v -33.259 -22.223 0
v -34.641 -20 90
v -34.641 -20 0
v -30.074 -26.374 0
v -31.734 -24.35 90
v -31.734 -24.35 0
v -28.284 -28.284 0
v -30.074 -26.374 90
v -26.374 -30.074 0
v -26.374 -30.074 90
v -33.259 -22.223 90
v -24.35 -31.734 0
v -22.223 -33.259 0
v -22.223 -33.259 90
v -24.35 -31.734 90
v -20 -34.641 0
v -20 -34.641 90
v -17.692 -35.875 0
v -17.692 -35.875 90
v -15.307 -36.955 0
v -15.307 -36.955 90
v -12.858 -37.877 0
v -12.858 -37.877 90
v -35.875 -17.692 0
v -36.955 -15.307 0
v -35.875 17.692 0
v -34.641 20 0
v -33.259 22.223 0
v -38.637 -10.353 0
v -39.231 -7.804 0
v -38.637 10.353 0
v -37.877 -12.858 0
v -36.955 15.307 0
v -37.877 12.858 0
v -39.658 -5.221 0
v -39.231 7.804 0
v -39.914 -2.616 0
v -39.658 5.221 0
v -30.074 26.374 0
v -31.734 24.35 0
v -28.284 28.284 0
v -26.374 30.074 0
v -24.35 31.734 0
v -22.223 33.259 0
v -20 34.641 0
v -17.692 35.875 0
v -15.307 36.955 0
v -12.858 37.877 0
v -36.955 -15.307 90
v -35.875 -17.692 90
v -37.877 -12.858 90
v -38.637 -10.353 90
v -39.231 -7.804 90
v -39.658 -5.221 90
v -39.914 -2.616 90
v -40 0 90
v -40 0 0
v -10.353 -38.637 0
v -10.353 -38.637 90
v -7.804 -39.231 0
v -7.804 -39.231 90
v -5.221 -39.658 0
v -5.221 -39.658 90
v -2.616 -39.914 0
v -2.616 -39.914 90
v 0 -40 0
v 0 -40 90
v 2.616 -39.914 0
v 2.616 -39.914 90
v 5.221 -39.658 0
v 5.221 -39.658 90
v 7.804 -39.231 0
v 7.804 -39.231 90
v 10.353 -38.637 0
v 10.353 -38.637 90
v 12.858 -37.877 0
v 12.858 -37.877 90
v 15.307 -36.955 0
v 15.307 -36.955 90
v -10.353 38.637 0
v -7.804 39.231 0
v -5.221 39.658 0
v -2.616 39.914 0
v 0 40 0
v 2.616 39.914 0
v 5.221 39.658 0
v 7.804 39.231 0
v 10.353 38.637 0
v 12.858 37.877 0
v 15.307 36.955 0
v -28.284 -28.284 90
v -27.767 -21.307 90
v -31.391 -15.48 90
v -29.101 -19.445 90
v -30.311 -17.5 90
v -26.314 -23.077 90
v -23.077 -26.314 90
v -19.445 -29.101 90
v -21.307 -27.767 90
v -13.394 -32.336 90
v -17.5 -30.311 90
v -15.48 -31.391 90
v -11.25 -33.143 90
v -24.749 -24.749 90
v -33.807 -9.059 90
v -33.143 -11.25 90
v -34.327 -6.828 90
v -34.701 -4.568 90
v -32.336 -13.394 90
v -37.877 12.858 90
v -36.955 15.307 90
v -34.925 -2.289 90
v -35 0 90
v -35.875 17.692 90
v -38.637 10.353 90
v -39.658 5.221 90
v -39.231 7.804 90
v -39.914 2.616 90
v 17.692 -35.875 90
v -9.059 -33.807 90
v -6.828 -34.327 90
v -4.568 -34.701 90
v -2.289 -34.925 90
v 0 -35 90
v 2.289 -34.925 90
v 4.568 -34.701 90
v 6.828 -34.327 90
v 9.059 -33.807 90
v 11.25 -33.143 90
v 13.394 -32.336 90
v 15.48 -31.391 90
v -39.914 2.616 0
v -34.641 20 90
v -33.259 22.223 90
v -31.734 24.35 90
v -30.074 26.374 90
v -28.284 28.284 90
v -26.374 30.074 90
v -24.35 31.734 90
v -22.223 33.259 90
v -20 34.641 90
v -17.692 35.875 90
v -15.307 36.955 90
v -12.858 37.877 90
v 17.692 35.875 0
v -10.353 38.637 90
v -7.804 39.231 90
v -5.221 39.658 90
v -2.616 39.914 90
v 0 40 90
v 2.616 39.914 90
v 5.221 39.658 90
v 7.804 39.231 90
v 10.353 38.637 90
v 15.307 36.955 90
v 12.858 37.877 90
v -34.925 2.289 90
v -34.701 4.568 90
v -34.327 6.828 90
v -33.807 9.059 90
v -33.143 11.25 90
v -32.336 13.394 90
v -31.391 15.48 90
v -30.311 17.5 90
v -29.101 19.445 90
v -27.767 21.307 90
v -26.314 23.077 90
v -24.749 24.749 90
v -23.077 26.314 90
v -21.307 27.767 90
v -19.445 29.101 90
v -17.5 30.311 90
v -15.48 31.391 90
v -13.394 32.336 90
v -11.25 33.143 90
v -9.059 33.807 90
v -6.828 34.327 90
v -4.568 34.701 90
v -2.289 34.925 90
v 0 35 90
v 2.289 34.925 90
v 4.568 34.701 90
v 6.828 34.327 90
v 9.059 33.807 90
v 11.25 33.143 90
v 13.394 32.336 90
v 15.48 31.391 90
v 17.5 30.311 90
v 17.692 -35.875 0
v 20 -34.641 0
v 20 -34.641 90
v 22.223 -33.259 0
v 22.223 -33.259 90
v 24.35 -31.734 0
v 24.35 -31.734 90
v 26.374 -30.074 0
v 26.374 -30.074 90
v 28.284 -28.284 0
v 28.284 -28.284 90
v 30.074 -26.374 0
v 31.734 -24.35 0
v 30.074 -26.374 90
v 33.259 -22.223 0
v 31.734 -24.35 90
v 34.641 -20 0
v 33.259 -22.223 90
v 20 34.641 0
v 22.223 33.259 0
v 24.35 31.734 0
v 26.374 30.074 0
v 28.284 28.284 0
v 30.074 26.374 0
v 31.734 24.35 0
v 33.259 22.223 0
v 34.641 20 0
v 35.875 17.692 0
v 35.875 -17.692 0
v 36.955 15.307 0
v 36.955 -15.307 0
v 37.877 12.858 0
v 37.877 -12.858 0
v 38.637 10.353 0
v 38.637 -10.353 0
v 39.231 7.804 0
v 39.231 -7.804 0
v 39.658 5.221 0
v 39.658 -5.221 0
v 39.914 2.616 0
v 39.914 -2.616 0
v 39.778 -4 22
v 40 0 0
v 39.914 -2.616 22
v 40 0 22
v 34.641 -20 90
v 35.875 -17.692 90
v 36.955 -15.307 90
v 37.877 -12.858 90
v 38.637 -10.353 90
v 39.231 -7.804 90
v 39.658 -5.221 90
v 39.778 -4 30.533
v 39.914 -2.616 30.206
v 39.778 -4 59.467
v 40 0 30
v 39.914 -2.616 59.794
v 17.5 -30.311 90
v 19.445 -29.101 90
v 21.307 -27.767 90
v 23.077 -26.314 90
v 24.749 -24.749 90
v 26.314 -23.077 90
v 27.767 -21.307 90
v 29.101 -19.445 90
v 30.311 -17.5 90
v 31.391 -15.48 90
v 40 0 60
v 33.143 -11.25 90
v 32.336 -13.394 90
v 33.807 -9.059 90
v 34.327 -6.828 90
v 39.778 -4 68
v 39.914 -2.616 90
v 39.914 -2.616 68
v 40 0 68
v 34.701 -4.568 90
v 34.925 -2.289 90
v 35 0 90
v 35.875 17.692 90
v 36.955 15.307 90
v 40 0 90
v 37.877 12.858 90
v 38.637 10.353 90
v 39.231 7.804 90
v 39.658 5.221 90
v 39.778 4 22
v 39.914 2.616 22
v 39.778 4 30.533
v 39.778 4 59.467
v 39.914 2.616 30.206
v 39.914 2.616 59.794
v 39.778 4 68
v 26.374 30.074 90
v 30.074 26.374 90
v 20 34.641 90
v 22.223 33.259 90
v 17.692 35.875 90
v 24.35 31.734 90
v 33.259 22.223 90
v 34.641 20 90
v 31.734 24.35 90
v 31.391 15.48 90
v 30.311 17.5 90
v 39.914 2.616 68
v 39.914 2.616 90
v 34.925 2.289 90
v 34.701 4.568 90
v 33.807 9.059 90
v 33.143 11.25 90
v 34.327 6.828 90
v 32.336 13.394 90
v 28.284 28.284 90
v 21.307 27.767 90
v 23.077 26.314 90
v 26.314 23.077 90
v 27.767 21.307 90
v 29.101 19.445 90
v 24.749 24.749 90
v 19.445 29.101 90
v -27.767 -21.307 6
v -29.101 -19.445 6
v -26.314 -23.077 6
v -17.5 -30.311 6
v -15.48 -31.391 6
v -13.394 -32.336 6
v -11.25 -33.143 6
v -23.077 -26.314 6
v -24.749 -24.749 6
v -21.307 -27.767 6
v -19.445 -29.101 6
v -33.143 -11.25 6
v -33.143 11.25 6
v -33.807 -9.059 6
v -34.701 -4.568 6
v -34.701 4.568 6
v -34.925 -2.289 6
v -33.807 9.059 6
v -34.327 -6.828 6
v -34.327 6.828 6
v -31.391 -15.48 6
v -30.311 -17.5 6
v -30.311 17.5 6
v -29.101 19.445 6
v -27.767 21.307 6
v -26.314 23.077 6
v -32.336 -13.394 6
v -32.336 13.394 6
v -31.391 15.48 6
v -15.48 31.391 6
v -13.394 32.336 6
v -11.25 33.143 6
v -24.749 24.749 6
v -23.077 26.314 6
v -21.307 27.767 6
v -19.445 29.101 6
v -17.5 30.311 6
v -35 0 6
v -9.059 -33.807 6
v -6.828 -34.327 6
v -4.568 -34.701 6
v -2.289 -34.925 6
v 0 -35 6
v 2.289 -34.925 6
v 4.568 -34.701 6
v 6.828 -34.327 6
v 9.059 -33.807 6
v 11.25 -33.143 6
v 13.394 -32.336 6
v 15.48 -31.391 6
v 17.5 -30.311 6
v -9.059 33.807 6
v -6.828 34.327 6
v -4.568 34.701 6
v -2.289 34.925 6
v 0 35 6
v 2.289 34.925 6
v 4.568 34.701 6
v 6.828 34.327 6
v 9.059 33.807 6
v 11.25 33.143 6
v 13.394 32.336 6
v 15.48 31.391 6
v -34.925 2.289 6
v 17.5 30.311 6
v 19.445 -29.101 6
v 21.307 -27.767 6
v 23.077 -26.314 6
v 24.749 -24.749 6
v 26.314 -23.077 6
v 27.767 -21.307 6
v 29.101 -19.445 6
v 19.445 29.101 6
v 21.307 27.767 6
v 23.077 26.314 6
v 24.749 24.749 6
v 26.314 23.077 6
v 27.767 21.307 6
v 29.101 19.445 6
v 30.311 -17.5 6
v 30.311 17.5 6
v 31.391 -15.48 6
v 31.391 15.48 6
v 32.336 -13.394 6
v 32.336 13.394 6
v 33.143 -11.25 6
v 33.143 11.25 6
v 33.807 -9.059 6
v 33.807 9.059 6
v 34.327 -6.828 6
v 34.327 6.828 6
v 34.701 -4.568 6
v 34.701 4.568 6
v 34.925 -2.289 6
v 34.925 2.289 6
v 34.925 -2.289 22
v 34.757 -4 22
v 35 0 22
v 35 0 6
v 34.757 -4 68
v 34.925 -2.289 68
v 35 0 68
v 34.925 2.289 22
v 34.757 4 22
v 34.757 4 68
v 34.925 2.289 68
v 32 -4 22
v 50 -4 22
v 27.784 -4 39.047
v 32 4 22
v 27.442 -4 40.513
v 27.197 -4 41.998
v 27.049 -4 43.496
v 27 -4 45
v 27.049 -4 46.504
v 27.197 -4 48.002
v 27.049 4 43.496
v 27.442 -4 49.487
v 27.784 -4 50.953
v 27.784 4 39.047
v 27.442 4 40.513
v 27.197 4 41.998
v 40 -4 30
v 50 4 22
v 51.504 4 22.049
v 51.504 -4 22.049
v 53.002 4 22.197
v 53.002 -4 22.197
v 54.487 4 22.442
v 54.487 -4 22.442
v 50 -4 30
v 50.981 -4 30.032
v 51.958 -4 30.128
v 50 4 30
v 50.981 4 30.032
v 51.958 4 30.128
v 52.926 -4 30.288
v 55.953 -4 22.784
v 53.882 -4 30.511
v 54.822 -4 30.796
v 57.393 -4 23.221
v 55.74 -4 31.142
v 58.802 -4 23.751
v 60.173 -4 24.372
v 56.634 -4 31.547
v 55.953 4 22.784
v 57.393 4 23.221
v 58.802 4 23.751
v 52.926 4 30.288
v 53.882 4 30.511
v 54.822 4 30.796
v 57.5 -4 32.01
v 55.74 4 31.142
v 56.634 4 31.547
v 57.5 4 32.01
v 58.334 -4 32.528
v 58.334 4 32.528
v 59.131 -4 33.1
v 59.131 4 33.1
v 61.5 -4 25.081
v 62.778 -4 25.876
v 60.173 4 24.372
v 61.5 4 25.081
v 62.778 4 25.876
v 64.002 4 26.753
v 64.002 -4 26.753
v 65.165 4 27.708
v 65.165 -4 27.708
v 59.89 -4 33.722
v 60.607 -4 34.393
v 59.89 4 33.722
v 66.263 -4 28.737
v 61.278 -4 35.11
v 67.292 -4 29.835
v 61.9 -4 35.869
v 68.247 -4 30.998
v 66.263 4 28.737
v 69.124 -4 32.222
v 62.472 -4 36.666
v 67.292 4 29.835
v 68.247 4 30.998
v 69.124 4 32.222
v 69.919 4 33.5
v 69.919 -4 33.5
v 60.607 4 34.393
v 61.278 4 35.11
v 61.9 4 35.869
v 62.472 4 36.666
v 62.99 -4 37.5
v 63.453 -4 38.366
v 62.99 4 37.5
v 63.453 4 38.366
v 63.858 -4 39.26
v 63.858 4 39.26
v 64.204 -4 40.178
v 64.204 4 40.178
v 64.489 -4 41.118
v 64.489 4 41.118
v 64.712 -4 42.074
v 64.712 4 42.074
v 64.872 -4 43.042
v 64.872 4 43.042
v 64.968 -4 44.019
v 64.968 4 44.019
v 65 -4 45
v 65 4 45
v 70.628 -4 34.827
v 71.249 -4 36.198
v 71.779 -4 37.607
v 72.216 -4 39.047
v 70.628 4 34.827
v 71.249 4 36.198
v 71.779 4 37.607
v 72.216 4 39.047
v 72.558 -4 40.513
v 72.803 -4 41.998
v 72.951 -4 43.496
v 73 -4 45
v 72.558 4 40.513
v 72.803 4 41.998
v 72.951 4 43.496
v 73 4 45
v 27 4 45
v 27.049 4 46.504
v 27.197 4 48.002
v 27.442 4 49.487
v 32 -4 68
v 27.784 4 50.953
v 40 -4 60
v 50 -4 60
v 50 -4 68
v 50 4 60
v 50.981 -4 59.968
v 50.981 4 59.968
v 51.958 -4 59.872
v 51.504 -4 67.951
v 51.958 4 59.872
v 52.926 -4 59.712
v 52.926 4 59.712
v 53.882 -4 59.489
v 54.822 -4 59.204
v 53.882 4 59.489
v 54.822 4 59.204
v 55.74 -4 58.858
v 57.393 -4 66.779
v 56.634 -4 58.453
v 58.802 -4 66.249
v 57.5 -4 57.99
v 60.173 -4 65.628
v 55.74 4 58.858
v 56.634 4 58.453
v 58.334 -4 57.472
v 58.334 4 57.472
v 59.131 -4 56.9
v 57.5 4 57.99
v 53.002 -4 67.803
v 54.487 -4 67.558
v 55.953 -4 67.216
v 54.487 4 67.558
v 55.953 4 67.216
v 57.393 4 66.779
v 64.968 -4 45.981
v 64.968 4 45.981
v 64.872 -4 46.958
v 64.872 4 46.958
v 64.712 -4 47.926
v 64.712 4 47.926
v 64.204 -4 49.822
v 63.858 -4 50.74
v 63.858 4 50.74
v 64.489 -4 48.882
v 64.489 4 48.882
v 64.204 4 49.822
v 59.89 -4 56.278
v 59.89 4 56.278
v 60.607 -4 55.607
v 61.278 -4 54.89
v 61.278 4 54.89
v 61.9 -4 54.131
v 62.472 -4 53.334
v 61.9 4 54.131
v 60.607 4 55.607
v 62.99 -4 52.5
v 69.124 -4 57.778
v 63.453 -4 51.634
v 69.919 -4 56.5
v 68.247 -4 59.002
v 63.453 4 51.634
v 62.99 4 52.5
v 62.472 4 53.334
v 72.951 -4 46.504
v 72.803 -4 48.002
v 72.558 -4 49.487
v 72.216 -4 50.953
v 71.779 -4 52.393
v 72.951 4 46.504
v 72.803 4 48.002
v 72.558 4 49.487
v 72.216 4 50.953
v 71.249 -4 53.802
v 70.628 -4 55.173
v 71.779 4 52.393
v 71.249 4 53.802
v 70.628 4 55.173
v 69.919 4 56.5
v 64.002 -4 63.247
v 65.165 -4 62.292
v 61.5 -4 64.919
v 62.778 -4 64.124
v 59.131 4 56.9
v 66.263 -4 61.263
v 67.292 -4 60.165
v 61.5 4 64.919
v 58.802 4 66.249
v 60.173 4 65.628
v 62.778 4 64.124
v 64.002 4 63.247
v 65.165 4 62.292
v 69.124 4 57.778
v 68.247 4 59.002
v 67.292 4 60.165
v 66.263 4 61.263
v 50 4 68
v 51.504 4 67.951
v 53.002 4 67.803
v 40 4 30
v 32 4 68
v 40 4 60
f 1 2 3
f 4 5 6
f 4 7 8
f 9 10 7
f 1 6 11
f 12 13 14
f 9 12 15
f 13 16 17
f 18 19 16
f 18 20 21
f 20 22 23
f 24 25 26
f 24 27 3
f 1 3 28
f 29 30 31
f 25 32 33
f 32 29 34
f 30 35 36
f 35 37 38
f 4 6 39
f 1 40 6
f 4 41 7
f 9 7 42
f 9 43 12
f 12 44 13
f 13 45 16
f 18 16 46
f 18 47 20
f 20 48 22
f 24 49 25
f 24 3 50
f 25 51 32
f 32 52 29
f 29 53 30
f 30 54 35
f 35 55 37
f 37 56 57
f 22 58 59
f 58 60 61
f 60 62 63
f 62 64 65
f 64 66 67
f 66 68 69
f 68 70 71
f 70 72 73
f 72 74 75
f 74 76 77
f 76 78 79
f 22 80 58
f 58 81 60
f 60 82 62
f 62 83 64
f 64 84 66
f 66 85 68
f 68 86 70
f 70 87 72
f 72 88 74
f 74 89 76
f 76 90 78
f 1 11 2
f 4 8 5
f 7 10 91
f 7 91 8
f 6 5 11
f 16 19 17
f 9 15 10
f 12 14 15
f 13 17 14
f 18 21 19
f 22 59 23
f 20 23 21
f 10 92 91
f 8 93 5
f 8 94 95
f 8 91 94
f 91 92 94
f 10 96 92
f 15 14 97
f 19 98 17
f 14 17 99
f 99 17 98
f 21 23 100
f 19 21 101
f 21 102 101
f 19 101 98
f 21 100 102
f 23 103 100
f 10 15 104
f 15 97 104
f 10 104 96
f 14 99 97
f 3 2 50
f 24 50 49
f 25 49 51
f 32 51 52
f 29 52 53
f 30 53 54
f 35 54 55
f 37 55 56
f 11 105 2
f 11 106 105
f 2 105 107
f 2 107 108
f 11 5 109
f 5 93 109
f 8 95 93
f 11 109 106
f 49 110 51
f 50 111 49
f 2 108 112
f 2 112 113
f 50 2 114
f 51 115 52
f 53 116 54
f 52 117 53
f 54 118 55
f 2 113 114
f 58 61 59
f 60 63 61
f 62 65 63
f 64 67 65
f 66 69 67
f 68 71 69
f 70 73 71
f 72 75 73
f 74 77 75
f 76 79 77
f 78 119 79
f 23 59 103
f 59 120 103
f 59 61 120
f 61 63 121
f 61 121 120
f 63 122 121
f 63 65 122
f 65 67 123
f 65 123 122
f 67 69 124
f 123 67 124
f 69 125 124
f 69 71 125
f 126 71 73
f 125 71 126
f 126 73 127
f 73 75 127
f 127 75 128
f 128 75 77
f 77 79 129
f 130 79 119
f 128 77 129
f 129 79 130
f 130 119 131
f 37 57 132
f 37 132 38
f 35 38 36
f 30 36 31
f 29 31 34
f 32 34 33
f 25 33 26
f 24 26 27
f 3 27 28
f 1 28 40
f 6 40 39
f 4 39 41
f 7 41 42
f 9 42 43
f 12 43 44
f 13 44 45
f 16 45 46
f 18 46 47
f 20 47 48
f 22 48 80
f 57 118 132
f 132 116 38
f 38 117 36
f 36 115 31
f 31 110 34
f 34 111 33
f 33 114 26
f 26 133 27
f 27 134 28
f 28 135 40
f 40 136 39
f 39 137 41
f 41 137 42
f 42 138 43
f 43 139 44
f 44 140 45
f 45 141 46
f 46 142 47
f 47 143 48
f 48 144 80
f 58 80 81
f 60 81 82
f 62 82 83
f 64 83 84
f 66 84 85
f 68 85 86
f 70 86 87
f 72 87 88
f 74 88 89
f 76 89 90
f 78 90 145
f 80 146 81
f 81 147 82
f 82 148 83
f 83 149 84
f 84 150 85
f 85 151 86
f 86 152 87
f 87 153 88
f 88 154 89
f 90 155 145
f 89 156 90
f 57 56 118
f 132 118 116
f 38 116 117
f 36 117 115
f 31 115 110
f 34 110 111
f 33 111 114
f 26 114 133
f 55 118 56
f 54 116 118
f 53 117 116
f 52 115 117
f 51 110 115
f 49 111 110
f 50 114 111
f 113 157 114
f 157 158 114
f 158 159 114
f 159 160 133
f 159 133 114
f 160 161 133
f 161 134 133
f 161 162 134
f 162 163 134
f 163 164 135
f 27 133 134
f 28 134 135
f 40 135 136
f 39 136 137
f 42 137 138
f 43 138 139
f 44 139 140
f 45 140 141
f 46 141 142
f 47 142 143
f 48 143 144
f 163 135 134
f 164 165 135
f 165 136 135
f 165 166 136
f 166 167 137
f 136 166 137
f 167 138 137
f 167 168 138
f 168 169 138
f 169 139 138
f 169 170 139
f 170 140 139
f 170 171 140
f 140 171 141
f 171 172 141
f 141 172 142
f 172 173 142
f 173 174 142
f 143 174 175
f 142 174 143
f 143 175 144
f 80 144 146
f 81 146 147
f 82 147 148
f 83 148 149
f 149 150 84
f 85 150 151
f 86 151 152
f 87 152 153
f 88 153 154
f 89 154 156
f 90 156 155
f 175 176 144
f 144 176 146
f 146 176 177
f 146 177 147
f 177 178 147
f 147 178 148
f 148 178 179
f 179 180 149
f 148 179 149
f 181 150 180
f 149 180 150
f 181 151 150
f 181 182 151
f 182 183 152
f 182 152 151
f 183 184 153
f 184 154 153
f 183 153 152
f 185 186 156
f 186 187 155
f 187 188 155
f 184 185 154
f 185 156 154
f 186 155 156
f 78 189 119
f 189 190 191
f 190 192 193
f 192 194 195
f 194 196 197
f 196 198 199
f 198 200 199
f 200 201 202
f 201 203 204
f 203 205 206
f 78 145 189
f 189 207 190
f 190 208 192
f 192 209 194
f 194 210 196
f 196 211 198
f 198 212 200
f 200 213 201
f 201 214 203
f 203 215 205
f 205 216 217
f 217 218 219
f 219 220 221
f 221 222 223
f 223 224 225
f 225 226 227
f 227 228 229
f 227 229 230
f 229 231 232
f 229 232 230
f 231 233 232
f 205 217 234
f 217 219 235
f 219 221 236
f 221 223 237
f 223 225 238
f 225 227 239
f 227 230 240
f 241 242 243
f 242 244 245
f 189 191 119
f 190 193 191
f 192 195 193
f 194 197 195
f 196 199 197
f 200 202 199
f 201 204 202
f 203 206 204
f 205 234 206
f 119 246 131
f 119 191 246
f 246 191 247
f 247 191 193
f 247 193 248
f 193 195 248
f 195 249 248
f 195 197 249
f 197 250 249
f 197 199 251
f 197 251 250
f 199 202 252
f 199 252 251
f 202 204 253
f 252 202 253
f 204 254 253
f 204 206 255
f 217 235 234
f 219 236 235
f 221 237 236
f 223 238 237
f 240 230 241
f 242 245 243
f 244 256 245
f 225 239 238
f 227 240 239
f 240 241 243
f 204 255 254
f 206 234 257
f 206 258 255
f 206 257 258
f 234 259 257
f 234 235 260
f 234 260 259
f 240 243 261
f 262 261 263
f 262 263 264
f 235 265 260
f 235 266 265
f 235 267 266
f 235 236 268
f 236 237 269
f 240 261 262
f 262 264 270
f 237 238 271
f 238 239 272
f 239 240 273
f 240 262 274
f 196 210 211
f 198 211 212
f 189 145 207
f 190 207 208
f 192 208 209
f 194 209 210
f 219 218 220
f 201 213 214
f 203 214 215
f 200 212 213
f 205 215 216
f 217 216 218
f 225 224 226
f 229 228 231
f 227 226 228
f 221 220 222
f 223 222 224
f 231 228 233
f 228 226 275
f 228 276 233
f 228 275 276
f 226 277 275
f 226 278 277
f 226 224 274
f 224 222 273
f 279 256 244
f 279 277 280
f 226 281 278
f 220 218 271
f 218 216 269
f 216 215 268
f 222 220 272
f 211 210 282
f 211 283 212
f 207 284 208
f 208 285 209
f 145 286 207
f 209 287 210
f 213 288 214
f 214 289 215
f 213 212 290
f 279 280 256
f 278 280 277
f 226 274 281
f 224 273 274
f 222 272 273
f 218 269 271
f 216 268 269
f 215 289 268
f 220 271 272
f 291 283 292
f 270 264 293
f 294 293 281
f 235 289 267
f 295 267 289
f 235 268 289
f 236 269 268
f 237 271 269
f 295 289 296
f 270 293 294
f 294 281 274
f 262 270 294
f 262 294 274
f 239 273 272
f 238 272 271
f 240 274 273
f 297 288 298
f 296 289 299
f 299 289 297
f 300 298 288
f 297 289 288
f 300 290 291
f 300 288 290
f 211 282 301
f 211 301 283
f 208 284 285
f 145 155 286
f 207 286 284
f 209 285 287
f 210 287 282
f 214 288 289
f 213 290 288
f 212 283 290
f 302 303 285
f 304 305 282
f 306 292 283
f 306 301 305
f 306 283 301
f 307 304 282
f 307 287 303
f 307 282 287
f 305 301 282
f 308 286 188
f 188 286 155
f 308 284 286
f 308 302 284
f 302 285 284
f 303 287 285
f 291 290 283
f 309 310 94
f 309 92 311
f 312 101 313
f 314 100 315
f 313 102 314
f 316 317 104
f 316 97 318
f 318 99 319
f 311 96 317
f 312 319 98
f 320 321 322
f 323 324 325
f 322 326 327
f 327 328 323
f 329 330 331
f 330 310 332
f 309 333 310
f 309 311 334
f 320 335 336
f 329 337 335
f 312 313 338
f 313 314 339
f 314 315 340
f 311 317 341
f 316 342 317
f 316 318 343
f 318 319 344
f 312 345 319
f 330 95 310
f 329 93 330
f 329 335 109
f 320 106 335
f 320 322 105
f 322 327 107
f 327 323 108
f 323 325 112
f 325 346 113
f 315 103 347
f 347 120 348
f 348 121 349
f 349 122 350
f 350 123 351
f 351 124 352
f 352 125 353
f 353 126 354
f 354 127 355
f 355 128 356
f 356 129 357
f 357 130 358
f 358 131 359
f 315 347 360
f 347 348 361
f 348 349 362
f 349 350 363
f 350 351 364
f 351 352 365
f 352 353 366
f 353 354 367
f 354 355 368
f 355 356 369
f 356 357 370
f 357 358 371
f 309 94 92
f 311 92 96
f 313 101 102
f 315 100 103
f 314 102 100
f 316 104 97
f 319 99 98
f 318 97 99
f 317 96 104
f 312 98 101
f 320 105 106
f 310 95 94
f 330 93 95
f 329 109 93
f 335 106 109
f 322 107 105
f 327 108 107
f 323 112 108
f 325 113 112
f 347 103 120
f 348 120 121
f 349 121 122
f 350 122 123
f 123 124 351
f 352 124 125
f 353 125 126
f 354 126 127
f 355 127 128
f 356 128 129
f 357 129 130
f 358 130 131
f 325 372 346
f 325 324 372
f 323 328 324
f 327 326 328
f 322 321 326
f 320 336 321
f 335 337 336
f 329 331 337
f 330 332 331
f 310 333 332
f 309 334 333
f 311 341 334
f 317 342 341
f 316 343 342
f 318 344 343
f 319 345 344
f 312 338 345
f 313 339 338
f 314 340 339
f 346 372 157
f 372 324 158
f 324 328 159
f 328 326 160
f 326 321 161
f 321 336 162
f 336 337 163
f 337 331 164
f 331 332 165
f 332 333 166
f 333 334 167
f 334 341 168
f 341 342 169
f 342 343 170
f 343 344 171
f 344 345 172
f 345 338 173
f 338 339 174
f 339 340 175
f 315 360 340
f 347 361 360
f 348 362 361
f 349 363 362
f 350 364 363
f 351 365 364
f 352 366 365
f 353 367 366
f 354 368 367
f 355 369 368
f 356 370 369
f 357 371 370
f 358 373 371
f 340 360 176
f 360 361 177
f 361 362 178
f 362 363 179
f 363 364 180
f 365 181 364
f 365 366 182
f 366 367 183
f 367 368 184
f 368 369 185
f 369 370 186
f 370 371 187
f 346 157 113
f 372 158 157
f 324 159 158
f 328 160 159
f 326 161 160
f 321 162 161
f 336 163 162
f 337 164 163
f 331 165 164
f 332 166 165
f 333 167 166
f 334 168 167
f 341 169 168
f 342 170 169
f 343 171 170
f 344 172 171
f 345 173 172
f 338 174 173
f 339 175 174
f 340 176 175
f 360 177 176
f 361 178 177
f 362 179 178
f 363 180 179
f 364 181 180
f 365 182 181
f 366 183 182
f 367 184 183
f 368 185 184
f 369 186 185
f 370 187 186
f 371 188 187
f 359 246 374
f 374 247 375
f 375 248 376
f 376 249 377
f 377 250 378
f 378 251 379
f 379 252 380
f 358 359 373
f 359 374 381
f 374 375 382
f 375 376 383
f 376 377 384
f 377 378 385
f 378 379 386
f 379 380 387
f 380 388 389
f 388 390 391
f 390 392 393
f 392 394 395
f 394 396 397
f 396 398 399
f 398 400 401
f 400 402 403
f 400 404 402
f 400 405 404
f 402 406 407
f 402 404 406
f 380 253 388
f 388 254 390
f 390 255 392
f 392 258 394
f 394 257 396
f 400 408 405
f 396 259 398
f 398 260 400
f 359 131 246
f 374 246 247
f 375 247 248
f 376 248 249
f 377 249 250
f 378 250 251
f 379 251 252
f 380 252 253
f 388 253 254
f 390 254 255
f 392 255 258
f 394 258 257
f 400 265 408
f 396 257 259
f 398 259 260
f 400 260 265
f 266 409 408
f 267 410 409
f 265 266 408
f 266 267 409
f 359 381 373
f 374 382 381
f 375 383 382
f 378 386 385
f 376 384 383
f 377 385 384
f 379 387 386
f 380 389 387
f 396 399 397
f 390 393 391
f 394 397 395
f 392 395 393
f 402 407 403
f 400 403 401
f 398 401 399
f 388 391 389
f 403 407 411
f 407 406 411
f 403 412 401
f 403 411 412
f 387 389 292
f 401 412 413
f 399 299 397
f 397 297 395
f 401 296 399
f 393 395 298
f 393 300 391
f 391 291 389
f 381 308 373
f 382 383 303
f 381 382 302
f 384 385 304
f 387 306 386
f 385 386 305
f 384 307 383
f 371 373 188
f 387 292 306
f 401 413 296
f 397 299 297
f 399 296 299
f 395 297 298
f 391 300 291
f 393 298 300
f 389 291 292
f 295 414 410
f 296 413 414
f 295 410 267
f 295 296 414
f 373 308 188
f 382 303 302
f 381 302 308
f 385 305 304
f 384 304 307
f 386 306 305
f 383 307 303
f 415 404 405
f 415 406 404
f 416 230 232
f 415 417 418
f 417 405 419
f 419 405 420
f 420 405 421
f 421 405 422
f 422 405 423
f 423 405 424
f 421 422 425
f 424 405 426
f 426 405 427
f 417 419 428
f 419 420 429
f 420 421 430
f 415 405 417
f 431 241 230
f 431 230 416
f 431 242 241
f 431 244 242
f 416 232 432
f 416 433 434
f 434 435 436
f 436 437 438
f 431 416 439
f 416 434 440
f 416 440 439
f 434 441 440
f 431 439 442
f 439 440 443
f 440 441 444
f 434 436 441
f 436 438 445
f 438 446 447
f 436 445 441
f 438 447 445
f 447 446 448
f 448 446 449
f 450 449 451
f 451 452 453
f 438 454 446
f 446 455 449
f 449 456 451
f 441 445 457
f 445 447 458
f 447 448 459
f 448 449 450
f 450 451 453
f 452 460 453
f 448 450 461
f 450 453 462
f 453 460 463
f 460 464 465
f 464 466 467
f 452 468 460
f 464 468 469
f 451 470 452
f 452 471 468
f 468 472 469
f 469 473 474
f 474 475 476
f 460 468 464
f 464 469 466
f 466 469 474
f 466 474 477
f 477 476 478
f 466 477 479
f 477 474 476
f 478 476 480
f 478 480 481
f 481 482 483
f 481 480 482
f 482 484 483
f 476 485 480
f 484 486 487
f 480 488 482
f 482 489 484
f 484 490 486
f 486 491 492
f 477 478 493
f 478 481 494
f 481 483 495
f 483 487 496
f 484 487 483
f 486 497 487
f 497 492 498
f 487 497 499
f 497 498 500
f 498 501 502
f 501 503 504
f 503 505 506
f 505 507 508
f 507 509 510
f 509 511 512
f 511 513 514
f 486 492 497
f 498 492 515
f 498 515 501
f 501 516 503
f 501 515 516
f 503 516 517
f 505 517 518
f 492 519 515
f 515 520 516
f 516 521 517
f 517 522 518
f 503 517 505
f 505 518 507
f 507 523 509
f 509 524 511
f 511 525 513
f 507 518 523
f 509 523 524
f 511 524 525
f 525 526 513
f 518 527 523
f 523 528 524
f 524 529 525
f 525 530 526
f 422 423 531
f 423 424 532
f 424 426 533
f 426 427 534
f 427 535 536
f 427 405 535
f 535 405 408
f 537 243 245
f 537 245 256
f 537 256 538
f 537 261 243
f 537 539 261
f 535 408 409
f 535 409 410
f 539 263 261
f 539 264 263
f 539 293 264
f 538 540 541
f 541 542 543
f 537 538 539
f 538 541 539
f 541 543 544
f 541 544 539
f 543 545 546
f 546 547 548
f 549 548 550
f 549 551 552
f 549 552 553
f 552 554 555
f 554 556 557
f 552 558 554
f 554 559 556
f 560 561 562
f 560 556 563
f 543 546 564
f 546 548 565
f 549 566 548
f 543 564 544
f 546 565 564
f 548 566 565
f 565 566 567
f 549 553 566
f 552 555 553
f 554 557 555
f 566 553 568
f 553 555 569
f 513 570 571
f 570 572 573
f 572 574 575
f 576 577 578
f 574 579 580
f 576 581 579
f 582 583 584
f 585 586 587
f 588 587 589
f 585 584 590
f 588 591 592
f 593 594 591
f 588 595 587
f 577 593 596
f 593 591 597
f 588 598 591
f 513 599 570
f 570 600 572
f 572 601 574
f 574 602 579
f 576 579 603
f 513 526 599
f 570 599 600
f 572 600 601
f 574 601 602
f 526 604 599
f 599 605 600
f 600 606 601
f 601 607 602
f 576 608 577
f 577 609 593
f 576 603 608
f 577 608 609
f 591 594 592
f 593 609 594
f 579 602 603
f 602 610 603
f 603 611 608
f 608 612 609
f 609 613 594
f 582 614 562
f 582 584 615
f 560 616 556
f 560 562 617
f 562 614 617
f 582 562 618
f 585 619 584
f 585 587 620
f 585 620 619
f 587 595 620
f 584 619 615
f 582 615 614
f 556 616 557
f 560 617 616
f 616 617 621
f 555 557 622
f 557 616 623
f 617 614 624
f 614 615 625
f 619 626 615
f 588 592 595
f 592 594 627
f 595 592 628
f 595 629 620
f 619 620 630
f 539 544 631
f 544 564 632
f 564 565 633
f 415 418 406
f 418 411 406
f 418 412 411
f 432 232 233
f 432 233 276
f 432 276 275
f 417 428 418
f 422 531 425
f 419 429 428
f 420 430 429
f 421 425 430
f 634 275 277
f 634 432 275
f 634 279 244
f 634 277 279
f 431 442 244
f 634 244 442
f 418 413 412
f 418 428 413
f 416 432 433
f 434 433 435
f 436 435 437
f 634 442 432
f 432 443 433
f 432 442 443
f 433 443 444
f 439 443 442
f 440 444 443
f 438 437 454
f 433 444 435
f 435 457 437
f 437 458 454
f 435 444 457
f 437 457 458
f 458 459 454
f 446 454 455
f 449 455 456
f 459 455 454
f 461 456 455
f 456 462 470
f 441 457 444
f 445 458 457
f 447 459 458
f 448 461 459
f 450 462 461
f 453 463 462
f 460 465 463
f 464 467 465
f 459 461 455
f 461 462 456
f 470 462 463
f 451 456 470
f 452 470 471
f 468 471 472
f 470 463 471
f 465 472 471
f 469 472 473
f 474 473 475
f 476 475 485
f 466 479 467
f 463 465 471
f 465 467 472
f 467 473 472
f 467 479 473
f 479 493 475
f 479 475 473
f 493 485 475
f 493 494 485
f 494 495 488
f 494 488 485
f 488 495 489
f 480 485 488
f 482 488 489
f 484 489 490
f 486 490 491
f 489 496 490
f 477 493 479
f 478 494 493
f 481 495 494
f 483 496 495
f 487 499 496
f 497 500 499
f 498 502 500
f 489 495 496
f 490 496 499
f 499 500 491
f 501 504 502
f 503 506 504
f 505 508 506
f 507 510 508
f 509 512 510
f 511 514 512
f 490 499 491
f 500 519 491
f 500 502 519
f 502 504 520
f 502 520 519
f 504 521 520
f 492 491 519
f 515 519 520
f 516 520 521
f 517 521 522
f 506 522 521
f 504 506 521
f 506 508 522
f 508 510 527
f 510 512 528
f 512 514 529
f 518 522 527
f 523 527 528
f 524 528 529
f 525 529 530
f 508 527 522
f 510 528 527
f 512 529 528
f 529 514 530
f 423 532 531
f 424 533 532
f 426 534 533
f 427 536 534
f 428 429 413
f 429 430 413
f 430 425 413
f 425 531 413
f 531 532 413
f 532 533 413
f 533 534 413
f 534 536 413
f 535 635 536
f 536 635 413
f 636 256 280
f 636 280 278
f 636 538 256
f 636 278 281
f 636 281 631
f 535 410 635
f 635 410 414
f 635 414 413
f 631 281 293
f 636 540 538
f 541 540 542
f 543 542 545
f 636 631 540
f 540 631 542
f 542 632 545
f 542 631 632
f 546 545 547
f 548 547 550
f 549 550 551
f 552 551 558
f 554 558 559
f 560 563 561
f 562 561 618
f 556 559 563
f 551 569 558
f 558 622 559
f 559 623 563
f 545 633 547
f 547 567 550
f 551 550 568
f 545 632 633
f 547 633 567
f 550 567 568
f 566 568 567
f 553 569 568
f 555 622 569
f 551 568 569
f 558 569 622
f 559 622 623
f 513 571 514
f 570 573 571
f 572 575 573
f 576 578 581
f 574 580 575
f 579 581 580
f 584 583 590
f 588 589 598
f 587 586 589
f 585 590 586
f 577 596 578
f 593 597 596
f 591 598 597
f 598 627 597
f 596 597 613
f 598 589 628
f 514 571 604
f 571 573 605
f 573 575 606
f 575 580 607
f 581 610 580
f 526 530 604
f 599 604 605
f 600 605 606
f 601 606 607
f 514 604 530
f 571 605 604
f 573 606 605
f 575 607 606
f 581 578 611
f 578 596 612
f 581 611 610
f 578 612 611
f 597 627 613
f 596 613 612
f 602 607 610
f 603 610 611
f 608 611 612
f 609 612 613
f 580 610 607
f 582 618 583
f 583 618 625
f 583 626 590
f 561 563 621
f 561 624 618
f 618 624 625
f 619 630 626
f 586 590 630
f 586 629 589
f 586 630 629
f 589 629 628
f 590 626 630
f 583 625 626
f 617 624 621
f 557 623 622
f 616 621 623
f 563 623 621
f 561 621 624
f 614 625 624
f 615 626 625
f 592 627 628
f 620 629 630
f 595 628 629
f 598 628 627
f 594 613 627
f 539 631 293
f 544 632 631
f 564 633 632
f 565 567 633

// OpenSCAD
// マグカップ（取手は +X 方向のみ）

// パラメータ
outer_d   = 80;   // 外径
inner_d   = 70;   // 内径
wall      = (outer_d - inner_d) / 2; // 肉厚 5mm
height    = 90;   // 全体高さ
bottom_th = 6;    // 底厚

outer_r = outer_d / 2; // 40
inner_r = inner_d / 2; // 35

// 取手パラメータ
hole_h   = 30;    // 取手内側の高さ
hole_w   = 25;    // 取手内側の幅
h_thick  = 8;     // 取手の太さ（断面）
handle_z = height / 2; // 取手を高さ中央に

$fn = 96;

// ===== 本体 =====
module body() {
    difference() {
        cylinder(h = height, r = outer_r);
        translate([0, 0, bottom_th])
            cylinder(h = height - bottom_th + 1, r = inner_r);
    }
}

// ===== 取手 =====
// D字形状: 外側半円 + 直線（本体側）
// 押し出し方向は Y、形状は XZ 平面で定義
module handle() {
    // 取手の外形 - 内側の穴
    handle_outer_w = hole_w + 2 * h_thick; // 全体幅
    handle_outer_h = hole_h + 2 * h_thick; // 全体高さ

    // 取手は +X 側に張り出す。
    // 本体表面 (x=outer_r) から外側へ伸びる D 字。
    translate([outer_r - h_thick, 0, handle_z])
    rotate([90, 0, 0]) // XZ断面をY方向に押し出すため
    linear_extrude(height = h_thick, center = true)
    difference() {
        // 外形 D字
        hull() {
            // 本体側（直線部）
            translate([0, -handle_outer_h/2])
                square([1, handle_outer_h]);
            // 外側半円部
            translate([handle_outer_w - handle_outer_h/2, 0])
                circle(d = handle_outer_h);
        }
        // 内側の穴 D字
        hull() {
            translate([h_thick, -hole_h/2])
                square([1, hole_h]);
            translate([h_thick + hole_w - hole_h/2, 0])
                circle(d = hole_h);
        }
    }
}

// ===== 結合 =====
union() {
    body();
    handle();
}
